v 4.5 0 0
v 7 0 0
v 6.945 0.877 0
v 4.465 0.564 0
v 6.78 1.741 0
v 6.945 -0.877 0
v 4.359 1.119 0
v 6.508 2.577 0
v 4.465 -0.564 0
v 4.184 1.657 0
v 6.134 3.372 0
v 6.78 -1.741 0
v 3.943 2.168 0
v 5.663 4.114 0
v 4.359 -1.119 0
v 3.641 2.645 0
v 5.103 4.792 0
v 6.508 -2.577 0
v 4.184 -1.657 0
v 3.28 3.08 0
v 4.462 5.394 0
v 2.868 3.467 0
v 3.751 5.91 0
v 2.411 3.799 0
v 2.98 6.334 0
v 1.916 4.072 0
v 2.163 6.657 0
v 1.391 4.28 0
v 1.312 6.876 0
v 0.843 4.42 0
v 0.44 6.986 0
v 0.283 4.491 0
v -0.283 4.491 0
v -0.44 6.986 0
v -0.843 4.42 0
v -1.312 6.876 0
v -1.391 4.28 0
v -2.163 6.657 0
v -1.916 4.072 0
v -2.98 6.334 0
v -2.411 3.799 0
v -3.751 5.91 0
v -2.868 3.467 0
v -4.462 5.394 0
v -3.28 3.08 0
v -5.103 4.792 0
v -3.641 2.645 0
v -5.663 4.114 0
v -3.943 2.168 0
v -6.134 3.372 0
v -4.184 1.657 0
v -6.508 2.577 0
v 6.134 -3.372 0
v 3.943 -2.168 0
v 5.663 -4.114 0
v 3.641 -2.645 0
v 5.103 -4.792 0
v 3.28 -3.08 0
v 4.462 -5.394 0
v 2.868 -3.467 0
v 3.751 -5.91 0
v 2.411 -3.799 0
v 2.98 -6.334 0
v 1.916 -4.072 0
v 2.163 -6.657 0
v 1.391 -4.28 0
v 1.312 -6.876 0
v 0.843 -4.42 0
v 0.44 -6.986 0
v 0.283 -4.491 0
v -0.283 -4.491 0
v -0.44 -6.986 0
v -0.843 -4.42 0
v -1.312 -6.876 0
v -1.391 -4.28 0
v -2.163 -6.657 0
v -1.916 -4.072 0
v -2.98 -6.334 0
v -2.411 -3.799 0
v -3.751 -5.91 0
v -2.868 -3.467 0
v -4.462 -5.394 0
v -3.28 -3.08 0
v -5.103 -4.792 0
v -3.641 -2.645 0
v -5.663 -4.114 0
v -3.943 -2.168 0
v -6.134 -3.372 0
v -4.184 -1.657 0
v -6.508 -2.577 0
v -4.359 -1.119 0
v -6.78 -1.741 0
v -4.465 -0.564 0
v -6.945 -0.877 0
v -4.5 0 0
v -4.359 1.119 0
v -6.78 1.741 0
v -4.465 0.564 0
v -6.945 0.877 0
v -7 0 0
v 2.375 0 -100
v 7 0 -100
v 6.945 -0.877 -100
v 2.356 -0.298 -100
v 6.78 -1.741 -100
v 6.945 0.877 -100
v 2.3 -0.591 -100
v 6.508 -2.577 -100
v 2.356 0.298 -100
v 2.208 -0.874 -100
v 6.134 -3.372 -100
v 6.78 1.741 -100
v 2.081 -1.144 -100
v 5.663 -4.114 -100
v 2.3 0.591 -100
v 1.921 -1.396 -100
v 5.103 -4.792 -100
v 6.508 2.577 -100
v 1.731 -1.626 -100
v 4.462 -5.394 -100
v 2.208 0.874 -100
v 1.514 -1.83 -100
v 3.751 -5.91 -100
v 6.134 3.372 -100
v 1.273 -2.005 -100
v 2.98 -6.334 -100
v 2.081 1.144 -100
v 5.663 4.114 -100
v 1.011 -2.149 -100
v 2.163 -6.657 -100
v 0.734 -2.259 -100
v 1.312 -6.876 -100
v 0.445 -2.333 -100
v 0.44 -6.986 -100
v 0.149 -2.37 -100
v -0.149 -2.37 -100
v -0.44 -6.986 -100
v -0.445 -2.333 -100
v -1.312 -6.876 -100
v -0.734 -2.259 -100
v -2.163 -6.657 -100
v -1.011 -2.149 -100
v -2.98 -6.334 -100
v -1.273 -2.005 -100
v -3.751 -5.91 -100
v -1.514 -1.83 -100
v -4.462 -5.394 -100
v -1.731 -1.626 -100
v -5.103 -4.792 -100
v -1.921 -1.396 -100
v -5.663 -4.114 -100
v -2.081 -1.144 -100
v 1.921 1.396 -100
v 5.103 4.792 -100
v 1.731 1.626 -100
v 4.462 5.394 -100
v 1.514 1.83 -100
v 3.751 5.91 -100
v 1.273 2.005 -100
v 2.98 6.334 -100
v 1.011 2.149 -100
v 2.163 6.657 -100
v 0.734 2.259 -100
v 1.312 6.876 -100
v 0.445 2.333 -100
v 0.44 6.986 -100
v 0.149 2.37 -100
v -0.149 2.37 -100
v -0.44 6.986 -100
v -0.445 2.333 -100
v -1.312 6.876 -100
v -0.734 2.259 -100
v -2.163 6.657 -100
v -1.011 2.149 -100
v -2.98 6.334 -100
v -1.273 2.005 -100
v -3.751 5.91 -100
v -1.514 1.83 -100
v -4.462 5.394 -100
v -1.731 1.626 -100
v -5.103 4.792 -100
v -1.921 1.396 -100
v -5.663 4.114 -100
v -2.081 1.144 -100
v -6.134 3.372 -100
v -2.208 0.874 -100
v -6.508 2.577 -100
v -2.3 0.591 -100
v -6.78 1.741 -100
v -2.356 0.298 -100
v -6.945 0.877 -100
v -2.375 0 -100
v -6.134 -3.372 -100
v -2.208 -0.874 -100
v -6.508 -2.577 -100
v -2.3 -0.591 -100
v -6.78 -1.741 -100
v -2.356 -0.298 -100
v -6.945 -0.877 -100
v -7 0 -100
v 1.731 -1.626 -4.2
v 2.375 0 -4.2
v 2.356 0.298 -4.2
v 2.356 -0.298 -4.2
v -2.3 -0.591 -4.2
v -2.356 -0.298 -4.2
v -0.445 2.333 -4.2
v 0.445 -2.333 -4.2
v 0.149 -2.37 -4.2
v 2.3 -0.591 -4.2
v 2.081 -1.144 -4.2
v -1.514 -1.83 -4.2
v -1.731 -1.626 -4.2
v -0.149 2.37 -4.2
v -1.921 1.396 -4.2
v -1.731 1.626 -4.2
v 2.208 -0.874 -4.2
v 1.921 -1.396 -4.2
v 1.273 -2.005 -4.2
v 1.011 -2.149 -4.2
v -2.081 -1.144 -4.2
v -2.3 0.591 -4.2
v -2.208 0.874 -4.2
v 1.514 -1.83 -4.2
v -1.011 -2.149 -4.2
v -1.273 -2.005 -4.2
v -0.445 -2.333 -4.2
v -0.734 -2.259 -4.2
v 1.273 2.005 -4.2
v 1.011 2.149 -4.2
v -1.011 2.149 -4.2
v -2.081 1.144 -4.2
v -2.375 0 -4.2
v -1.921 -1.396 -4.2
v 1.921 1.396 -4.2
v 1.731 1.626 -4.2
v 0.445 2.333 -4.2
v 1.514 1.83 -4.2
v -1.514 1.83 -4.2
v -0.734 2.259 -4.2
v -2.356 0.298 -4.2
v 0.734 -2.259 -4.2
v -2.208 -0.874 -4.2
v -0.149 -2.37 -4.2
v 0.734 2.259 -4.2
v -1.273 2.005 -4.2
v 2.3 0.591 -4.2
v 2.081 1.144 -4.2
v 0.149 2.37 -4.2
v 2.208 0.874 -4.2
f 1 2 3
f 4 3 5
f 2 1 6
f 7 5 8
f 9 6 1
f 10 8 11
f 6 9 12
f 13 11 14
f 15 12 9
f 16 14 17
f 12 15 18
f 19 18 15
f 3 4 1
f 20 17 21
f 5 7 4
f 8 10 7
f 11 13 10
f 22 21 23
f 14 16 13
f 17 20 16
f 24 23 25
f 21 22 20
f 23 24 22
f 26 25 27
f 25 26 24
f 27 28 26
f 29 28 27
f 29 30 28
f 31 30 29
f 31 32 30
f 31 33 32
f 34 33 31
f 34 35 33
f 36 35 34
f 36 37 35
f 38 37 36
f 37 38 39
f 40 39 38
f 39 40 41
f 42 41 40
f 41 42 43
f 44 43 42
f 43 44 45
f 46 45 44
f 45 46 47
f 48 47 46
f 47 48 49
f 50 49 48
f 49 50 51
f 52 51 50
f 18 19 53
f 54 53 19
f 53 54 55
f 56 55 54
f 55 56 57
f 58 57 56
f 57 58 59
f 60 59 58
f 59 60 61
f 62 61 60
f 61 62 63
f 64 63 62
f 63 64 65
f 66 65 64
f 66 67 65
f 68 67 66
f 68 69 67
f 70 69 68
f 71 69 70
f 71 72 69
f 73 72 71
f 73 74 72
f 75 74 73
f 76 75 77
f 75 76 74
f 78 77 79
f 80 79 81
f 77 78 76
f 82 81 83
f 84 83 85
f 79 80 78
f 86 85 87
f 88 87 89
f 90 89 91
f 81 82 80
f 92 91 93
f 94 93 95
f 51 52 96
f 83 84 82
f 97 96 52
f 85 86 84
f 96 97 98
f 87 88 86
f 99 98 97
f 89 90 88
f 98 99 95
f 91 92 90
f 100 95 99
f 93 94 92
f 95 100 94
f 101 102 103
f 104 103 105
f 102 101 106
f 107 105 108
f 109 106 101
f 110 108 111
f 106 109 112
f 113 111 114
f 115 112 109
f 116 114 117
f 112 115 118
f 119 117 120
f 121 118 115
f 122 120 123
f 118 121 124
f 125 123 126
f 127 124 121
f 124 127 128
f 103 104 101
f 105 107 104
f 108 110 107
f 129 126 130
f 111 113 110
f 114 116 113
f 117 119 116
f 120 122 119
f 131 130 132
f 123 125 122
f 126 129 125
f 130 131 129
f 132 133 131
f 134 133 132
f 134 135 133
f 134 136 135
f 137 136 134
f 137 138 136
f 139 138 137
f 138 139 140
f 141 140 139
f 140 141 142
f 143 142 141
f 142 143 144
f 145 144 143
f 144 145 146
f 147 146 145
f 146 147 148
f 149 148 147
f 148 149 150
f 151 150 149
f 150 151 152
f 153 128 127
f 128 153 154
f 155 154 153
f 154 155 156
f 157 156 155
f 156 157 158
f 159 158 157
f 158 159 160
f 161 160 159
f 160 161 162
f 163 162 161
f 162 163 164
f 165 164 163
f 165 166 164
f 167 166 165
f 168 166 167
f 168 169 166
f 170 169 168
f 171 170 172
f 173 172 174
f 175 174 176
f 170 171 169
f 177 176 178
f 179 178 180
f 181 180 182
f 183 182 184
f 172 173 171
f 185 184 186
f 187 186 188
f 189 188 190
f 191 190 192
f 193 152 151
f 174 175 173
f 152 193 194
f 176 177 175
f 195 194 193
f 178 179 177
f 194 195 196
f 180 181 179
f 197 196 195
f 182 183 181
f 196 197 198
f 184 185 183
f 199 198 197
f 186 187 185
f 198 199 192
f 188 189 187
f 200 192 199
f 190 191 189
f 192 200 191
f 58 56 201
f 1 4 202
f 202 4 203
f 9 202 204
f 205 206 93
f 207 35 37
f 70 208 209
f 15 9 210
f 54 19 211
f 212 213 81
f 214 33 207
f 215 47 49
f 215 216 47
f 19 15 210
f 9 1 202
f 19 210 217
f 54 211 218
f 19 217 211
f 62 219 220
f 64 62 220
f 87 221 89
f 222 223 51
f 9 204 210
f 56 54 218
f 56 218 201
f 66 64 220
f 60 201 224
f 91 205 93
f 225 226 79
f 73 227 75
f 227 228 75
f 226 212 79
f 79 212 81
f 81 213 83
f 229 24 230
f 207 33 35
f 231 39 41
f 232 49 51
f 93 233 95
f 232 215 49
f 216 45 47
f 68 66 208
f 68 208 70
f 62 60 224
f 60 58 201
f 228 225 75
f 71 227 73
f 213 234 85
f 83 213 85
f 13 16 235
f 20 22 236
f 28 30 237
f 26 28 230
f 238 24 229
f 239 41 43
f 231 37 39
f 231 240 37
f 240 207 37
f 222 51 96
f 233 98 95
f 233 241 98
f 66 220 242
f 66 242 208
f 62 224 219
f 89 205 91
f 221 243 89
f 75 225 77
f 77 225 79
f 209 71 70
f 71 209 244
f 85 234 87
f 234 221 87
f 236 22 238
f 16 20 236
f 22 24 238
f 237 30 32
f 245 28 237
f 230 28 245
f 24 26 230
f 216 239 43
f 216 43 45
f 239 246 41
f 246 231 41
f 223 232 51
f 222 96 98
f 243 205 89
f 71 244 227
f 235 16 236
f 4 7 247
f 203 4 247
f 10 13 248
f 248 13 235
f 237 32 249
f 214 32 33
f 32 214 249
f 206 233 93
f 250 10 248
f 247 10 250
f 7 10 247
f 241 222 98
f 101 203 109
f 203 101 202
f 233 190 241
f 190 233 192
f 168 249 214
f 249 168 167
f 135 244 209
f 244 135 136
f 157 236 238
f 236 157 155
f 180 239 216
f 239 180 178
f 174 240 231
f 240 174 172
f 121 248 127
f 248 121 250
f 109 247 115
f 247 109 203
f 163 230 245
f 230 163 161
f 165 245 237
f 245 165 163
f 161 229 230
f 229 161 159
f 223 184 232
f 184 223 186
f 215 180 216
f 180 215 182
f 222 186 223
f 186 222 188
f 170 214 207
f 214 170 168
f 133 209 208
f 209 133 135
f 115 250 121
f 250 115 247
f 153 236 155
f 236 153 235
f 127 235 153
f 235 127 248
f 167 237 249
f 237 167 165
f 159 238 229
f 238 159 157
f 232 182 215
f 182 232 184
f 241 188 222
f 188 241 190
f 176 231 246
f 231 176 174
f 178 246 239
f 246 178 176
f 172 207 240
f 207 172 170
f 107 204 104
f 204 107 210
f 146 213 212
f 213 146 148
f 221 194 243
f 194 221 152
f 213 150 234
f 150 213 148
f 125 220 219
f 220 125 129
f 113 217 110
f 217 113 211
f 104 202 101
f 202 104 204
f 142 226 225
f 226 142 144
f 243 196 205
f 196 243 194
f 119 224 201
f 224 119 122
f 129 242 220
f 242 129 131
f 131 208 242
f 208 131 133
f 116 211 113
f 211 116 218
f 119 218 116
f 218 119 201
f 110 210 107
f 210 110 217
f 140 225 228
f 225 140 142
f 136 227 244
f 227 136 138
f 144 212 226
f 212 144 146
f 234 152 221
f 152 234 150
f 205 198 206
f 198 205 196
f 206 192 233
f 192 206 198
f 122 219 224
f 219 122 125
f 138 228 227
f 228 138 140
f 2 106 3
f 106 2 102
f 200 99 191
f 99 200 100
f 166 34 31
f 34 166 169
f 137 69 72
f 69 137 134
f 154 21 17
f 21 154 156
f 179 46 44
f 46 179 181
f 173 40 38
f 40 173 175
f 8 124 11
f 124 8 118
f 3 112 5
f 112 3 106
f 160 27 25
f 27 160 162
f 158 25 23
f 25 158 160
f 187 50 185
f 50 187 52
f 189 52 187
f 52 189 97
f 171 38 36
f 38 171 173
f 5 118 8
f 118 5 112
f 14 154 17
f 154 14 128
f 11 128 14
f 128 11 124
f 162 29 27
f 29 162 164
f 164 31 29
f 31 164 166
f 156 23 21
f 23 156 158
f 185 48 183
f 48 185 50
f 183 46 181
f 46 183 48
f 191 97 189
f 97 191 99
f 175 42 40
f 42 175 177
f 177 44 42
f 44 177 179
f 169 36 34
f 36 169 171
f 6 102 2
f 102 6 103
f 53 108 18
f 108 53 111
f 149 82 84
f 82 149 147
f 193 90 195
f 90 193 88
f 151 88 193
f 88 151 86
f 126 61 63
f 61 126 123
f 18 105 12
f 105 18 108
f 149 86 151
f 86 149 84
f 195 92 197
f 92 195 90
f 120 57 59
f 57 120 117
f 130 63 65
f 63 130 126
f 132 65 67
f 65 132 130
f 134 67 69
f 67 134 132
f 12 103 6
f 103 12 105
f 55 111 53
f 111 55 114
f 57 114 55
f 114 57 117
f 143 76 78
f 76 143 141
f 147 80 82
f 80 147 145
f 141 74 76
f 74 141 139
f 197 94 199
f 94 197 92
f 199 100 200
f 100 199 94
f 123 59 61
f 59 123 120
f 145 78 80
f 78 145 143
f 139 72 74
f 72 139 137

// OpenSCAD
$fn = 50;


difference() {
	union() {
		translate(v = [0, 0, -100.0000000000]) {
			cylinder(h = 100, r = 7.0000000000);
		}
		cylinder(h = 0, r = 16.0000000000);
	}
	union() {
		translate(v = [0, 0, 0]) {
			rotate(a = [0, 0, 0]) {
				difference() {
					union() {
						#translate(v = [0, 0, -100.0000000000]) {
							cylinder(h = 100, r = 2.2500000000);
						}
						#translate(v = [0, 0, -4.2000000000]) {
							cylinder(h = 4.2000000000, r1 = 2.3750000000, r2 = 4.5000000000);
						}
						#translate(v = [0, 0, -100.0000000000]) {
							cylinder(h = 100, r = 2.3750000000);
						}
						#translate(v = [0, 0, -100.0000000000]) {
							cylinder(h = 100, r = 2.2500000000);
						}
					}
					union();
				}
			}
		}
	}
}
